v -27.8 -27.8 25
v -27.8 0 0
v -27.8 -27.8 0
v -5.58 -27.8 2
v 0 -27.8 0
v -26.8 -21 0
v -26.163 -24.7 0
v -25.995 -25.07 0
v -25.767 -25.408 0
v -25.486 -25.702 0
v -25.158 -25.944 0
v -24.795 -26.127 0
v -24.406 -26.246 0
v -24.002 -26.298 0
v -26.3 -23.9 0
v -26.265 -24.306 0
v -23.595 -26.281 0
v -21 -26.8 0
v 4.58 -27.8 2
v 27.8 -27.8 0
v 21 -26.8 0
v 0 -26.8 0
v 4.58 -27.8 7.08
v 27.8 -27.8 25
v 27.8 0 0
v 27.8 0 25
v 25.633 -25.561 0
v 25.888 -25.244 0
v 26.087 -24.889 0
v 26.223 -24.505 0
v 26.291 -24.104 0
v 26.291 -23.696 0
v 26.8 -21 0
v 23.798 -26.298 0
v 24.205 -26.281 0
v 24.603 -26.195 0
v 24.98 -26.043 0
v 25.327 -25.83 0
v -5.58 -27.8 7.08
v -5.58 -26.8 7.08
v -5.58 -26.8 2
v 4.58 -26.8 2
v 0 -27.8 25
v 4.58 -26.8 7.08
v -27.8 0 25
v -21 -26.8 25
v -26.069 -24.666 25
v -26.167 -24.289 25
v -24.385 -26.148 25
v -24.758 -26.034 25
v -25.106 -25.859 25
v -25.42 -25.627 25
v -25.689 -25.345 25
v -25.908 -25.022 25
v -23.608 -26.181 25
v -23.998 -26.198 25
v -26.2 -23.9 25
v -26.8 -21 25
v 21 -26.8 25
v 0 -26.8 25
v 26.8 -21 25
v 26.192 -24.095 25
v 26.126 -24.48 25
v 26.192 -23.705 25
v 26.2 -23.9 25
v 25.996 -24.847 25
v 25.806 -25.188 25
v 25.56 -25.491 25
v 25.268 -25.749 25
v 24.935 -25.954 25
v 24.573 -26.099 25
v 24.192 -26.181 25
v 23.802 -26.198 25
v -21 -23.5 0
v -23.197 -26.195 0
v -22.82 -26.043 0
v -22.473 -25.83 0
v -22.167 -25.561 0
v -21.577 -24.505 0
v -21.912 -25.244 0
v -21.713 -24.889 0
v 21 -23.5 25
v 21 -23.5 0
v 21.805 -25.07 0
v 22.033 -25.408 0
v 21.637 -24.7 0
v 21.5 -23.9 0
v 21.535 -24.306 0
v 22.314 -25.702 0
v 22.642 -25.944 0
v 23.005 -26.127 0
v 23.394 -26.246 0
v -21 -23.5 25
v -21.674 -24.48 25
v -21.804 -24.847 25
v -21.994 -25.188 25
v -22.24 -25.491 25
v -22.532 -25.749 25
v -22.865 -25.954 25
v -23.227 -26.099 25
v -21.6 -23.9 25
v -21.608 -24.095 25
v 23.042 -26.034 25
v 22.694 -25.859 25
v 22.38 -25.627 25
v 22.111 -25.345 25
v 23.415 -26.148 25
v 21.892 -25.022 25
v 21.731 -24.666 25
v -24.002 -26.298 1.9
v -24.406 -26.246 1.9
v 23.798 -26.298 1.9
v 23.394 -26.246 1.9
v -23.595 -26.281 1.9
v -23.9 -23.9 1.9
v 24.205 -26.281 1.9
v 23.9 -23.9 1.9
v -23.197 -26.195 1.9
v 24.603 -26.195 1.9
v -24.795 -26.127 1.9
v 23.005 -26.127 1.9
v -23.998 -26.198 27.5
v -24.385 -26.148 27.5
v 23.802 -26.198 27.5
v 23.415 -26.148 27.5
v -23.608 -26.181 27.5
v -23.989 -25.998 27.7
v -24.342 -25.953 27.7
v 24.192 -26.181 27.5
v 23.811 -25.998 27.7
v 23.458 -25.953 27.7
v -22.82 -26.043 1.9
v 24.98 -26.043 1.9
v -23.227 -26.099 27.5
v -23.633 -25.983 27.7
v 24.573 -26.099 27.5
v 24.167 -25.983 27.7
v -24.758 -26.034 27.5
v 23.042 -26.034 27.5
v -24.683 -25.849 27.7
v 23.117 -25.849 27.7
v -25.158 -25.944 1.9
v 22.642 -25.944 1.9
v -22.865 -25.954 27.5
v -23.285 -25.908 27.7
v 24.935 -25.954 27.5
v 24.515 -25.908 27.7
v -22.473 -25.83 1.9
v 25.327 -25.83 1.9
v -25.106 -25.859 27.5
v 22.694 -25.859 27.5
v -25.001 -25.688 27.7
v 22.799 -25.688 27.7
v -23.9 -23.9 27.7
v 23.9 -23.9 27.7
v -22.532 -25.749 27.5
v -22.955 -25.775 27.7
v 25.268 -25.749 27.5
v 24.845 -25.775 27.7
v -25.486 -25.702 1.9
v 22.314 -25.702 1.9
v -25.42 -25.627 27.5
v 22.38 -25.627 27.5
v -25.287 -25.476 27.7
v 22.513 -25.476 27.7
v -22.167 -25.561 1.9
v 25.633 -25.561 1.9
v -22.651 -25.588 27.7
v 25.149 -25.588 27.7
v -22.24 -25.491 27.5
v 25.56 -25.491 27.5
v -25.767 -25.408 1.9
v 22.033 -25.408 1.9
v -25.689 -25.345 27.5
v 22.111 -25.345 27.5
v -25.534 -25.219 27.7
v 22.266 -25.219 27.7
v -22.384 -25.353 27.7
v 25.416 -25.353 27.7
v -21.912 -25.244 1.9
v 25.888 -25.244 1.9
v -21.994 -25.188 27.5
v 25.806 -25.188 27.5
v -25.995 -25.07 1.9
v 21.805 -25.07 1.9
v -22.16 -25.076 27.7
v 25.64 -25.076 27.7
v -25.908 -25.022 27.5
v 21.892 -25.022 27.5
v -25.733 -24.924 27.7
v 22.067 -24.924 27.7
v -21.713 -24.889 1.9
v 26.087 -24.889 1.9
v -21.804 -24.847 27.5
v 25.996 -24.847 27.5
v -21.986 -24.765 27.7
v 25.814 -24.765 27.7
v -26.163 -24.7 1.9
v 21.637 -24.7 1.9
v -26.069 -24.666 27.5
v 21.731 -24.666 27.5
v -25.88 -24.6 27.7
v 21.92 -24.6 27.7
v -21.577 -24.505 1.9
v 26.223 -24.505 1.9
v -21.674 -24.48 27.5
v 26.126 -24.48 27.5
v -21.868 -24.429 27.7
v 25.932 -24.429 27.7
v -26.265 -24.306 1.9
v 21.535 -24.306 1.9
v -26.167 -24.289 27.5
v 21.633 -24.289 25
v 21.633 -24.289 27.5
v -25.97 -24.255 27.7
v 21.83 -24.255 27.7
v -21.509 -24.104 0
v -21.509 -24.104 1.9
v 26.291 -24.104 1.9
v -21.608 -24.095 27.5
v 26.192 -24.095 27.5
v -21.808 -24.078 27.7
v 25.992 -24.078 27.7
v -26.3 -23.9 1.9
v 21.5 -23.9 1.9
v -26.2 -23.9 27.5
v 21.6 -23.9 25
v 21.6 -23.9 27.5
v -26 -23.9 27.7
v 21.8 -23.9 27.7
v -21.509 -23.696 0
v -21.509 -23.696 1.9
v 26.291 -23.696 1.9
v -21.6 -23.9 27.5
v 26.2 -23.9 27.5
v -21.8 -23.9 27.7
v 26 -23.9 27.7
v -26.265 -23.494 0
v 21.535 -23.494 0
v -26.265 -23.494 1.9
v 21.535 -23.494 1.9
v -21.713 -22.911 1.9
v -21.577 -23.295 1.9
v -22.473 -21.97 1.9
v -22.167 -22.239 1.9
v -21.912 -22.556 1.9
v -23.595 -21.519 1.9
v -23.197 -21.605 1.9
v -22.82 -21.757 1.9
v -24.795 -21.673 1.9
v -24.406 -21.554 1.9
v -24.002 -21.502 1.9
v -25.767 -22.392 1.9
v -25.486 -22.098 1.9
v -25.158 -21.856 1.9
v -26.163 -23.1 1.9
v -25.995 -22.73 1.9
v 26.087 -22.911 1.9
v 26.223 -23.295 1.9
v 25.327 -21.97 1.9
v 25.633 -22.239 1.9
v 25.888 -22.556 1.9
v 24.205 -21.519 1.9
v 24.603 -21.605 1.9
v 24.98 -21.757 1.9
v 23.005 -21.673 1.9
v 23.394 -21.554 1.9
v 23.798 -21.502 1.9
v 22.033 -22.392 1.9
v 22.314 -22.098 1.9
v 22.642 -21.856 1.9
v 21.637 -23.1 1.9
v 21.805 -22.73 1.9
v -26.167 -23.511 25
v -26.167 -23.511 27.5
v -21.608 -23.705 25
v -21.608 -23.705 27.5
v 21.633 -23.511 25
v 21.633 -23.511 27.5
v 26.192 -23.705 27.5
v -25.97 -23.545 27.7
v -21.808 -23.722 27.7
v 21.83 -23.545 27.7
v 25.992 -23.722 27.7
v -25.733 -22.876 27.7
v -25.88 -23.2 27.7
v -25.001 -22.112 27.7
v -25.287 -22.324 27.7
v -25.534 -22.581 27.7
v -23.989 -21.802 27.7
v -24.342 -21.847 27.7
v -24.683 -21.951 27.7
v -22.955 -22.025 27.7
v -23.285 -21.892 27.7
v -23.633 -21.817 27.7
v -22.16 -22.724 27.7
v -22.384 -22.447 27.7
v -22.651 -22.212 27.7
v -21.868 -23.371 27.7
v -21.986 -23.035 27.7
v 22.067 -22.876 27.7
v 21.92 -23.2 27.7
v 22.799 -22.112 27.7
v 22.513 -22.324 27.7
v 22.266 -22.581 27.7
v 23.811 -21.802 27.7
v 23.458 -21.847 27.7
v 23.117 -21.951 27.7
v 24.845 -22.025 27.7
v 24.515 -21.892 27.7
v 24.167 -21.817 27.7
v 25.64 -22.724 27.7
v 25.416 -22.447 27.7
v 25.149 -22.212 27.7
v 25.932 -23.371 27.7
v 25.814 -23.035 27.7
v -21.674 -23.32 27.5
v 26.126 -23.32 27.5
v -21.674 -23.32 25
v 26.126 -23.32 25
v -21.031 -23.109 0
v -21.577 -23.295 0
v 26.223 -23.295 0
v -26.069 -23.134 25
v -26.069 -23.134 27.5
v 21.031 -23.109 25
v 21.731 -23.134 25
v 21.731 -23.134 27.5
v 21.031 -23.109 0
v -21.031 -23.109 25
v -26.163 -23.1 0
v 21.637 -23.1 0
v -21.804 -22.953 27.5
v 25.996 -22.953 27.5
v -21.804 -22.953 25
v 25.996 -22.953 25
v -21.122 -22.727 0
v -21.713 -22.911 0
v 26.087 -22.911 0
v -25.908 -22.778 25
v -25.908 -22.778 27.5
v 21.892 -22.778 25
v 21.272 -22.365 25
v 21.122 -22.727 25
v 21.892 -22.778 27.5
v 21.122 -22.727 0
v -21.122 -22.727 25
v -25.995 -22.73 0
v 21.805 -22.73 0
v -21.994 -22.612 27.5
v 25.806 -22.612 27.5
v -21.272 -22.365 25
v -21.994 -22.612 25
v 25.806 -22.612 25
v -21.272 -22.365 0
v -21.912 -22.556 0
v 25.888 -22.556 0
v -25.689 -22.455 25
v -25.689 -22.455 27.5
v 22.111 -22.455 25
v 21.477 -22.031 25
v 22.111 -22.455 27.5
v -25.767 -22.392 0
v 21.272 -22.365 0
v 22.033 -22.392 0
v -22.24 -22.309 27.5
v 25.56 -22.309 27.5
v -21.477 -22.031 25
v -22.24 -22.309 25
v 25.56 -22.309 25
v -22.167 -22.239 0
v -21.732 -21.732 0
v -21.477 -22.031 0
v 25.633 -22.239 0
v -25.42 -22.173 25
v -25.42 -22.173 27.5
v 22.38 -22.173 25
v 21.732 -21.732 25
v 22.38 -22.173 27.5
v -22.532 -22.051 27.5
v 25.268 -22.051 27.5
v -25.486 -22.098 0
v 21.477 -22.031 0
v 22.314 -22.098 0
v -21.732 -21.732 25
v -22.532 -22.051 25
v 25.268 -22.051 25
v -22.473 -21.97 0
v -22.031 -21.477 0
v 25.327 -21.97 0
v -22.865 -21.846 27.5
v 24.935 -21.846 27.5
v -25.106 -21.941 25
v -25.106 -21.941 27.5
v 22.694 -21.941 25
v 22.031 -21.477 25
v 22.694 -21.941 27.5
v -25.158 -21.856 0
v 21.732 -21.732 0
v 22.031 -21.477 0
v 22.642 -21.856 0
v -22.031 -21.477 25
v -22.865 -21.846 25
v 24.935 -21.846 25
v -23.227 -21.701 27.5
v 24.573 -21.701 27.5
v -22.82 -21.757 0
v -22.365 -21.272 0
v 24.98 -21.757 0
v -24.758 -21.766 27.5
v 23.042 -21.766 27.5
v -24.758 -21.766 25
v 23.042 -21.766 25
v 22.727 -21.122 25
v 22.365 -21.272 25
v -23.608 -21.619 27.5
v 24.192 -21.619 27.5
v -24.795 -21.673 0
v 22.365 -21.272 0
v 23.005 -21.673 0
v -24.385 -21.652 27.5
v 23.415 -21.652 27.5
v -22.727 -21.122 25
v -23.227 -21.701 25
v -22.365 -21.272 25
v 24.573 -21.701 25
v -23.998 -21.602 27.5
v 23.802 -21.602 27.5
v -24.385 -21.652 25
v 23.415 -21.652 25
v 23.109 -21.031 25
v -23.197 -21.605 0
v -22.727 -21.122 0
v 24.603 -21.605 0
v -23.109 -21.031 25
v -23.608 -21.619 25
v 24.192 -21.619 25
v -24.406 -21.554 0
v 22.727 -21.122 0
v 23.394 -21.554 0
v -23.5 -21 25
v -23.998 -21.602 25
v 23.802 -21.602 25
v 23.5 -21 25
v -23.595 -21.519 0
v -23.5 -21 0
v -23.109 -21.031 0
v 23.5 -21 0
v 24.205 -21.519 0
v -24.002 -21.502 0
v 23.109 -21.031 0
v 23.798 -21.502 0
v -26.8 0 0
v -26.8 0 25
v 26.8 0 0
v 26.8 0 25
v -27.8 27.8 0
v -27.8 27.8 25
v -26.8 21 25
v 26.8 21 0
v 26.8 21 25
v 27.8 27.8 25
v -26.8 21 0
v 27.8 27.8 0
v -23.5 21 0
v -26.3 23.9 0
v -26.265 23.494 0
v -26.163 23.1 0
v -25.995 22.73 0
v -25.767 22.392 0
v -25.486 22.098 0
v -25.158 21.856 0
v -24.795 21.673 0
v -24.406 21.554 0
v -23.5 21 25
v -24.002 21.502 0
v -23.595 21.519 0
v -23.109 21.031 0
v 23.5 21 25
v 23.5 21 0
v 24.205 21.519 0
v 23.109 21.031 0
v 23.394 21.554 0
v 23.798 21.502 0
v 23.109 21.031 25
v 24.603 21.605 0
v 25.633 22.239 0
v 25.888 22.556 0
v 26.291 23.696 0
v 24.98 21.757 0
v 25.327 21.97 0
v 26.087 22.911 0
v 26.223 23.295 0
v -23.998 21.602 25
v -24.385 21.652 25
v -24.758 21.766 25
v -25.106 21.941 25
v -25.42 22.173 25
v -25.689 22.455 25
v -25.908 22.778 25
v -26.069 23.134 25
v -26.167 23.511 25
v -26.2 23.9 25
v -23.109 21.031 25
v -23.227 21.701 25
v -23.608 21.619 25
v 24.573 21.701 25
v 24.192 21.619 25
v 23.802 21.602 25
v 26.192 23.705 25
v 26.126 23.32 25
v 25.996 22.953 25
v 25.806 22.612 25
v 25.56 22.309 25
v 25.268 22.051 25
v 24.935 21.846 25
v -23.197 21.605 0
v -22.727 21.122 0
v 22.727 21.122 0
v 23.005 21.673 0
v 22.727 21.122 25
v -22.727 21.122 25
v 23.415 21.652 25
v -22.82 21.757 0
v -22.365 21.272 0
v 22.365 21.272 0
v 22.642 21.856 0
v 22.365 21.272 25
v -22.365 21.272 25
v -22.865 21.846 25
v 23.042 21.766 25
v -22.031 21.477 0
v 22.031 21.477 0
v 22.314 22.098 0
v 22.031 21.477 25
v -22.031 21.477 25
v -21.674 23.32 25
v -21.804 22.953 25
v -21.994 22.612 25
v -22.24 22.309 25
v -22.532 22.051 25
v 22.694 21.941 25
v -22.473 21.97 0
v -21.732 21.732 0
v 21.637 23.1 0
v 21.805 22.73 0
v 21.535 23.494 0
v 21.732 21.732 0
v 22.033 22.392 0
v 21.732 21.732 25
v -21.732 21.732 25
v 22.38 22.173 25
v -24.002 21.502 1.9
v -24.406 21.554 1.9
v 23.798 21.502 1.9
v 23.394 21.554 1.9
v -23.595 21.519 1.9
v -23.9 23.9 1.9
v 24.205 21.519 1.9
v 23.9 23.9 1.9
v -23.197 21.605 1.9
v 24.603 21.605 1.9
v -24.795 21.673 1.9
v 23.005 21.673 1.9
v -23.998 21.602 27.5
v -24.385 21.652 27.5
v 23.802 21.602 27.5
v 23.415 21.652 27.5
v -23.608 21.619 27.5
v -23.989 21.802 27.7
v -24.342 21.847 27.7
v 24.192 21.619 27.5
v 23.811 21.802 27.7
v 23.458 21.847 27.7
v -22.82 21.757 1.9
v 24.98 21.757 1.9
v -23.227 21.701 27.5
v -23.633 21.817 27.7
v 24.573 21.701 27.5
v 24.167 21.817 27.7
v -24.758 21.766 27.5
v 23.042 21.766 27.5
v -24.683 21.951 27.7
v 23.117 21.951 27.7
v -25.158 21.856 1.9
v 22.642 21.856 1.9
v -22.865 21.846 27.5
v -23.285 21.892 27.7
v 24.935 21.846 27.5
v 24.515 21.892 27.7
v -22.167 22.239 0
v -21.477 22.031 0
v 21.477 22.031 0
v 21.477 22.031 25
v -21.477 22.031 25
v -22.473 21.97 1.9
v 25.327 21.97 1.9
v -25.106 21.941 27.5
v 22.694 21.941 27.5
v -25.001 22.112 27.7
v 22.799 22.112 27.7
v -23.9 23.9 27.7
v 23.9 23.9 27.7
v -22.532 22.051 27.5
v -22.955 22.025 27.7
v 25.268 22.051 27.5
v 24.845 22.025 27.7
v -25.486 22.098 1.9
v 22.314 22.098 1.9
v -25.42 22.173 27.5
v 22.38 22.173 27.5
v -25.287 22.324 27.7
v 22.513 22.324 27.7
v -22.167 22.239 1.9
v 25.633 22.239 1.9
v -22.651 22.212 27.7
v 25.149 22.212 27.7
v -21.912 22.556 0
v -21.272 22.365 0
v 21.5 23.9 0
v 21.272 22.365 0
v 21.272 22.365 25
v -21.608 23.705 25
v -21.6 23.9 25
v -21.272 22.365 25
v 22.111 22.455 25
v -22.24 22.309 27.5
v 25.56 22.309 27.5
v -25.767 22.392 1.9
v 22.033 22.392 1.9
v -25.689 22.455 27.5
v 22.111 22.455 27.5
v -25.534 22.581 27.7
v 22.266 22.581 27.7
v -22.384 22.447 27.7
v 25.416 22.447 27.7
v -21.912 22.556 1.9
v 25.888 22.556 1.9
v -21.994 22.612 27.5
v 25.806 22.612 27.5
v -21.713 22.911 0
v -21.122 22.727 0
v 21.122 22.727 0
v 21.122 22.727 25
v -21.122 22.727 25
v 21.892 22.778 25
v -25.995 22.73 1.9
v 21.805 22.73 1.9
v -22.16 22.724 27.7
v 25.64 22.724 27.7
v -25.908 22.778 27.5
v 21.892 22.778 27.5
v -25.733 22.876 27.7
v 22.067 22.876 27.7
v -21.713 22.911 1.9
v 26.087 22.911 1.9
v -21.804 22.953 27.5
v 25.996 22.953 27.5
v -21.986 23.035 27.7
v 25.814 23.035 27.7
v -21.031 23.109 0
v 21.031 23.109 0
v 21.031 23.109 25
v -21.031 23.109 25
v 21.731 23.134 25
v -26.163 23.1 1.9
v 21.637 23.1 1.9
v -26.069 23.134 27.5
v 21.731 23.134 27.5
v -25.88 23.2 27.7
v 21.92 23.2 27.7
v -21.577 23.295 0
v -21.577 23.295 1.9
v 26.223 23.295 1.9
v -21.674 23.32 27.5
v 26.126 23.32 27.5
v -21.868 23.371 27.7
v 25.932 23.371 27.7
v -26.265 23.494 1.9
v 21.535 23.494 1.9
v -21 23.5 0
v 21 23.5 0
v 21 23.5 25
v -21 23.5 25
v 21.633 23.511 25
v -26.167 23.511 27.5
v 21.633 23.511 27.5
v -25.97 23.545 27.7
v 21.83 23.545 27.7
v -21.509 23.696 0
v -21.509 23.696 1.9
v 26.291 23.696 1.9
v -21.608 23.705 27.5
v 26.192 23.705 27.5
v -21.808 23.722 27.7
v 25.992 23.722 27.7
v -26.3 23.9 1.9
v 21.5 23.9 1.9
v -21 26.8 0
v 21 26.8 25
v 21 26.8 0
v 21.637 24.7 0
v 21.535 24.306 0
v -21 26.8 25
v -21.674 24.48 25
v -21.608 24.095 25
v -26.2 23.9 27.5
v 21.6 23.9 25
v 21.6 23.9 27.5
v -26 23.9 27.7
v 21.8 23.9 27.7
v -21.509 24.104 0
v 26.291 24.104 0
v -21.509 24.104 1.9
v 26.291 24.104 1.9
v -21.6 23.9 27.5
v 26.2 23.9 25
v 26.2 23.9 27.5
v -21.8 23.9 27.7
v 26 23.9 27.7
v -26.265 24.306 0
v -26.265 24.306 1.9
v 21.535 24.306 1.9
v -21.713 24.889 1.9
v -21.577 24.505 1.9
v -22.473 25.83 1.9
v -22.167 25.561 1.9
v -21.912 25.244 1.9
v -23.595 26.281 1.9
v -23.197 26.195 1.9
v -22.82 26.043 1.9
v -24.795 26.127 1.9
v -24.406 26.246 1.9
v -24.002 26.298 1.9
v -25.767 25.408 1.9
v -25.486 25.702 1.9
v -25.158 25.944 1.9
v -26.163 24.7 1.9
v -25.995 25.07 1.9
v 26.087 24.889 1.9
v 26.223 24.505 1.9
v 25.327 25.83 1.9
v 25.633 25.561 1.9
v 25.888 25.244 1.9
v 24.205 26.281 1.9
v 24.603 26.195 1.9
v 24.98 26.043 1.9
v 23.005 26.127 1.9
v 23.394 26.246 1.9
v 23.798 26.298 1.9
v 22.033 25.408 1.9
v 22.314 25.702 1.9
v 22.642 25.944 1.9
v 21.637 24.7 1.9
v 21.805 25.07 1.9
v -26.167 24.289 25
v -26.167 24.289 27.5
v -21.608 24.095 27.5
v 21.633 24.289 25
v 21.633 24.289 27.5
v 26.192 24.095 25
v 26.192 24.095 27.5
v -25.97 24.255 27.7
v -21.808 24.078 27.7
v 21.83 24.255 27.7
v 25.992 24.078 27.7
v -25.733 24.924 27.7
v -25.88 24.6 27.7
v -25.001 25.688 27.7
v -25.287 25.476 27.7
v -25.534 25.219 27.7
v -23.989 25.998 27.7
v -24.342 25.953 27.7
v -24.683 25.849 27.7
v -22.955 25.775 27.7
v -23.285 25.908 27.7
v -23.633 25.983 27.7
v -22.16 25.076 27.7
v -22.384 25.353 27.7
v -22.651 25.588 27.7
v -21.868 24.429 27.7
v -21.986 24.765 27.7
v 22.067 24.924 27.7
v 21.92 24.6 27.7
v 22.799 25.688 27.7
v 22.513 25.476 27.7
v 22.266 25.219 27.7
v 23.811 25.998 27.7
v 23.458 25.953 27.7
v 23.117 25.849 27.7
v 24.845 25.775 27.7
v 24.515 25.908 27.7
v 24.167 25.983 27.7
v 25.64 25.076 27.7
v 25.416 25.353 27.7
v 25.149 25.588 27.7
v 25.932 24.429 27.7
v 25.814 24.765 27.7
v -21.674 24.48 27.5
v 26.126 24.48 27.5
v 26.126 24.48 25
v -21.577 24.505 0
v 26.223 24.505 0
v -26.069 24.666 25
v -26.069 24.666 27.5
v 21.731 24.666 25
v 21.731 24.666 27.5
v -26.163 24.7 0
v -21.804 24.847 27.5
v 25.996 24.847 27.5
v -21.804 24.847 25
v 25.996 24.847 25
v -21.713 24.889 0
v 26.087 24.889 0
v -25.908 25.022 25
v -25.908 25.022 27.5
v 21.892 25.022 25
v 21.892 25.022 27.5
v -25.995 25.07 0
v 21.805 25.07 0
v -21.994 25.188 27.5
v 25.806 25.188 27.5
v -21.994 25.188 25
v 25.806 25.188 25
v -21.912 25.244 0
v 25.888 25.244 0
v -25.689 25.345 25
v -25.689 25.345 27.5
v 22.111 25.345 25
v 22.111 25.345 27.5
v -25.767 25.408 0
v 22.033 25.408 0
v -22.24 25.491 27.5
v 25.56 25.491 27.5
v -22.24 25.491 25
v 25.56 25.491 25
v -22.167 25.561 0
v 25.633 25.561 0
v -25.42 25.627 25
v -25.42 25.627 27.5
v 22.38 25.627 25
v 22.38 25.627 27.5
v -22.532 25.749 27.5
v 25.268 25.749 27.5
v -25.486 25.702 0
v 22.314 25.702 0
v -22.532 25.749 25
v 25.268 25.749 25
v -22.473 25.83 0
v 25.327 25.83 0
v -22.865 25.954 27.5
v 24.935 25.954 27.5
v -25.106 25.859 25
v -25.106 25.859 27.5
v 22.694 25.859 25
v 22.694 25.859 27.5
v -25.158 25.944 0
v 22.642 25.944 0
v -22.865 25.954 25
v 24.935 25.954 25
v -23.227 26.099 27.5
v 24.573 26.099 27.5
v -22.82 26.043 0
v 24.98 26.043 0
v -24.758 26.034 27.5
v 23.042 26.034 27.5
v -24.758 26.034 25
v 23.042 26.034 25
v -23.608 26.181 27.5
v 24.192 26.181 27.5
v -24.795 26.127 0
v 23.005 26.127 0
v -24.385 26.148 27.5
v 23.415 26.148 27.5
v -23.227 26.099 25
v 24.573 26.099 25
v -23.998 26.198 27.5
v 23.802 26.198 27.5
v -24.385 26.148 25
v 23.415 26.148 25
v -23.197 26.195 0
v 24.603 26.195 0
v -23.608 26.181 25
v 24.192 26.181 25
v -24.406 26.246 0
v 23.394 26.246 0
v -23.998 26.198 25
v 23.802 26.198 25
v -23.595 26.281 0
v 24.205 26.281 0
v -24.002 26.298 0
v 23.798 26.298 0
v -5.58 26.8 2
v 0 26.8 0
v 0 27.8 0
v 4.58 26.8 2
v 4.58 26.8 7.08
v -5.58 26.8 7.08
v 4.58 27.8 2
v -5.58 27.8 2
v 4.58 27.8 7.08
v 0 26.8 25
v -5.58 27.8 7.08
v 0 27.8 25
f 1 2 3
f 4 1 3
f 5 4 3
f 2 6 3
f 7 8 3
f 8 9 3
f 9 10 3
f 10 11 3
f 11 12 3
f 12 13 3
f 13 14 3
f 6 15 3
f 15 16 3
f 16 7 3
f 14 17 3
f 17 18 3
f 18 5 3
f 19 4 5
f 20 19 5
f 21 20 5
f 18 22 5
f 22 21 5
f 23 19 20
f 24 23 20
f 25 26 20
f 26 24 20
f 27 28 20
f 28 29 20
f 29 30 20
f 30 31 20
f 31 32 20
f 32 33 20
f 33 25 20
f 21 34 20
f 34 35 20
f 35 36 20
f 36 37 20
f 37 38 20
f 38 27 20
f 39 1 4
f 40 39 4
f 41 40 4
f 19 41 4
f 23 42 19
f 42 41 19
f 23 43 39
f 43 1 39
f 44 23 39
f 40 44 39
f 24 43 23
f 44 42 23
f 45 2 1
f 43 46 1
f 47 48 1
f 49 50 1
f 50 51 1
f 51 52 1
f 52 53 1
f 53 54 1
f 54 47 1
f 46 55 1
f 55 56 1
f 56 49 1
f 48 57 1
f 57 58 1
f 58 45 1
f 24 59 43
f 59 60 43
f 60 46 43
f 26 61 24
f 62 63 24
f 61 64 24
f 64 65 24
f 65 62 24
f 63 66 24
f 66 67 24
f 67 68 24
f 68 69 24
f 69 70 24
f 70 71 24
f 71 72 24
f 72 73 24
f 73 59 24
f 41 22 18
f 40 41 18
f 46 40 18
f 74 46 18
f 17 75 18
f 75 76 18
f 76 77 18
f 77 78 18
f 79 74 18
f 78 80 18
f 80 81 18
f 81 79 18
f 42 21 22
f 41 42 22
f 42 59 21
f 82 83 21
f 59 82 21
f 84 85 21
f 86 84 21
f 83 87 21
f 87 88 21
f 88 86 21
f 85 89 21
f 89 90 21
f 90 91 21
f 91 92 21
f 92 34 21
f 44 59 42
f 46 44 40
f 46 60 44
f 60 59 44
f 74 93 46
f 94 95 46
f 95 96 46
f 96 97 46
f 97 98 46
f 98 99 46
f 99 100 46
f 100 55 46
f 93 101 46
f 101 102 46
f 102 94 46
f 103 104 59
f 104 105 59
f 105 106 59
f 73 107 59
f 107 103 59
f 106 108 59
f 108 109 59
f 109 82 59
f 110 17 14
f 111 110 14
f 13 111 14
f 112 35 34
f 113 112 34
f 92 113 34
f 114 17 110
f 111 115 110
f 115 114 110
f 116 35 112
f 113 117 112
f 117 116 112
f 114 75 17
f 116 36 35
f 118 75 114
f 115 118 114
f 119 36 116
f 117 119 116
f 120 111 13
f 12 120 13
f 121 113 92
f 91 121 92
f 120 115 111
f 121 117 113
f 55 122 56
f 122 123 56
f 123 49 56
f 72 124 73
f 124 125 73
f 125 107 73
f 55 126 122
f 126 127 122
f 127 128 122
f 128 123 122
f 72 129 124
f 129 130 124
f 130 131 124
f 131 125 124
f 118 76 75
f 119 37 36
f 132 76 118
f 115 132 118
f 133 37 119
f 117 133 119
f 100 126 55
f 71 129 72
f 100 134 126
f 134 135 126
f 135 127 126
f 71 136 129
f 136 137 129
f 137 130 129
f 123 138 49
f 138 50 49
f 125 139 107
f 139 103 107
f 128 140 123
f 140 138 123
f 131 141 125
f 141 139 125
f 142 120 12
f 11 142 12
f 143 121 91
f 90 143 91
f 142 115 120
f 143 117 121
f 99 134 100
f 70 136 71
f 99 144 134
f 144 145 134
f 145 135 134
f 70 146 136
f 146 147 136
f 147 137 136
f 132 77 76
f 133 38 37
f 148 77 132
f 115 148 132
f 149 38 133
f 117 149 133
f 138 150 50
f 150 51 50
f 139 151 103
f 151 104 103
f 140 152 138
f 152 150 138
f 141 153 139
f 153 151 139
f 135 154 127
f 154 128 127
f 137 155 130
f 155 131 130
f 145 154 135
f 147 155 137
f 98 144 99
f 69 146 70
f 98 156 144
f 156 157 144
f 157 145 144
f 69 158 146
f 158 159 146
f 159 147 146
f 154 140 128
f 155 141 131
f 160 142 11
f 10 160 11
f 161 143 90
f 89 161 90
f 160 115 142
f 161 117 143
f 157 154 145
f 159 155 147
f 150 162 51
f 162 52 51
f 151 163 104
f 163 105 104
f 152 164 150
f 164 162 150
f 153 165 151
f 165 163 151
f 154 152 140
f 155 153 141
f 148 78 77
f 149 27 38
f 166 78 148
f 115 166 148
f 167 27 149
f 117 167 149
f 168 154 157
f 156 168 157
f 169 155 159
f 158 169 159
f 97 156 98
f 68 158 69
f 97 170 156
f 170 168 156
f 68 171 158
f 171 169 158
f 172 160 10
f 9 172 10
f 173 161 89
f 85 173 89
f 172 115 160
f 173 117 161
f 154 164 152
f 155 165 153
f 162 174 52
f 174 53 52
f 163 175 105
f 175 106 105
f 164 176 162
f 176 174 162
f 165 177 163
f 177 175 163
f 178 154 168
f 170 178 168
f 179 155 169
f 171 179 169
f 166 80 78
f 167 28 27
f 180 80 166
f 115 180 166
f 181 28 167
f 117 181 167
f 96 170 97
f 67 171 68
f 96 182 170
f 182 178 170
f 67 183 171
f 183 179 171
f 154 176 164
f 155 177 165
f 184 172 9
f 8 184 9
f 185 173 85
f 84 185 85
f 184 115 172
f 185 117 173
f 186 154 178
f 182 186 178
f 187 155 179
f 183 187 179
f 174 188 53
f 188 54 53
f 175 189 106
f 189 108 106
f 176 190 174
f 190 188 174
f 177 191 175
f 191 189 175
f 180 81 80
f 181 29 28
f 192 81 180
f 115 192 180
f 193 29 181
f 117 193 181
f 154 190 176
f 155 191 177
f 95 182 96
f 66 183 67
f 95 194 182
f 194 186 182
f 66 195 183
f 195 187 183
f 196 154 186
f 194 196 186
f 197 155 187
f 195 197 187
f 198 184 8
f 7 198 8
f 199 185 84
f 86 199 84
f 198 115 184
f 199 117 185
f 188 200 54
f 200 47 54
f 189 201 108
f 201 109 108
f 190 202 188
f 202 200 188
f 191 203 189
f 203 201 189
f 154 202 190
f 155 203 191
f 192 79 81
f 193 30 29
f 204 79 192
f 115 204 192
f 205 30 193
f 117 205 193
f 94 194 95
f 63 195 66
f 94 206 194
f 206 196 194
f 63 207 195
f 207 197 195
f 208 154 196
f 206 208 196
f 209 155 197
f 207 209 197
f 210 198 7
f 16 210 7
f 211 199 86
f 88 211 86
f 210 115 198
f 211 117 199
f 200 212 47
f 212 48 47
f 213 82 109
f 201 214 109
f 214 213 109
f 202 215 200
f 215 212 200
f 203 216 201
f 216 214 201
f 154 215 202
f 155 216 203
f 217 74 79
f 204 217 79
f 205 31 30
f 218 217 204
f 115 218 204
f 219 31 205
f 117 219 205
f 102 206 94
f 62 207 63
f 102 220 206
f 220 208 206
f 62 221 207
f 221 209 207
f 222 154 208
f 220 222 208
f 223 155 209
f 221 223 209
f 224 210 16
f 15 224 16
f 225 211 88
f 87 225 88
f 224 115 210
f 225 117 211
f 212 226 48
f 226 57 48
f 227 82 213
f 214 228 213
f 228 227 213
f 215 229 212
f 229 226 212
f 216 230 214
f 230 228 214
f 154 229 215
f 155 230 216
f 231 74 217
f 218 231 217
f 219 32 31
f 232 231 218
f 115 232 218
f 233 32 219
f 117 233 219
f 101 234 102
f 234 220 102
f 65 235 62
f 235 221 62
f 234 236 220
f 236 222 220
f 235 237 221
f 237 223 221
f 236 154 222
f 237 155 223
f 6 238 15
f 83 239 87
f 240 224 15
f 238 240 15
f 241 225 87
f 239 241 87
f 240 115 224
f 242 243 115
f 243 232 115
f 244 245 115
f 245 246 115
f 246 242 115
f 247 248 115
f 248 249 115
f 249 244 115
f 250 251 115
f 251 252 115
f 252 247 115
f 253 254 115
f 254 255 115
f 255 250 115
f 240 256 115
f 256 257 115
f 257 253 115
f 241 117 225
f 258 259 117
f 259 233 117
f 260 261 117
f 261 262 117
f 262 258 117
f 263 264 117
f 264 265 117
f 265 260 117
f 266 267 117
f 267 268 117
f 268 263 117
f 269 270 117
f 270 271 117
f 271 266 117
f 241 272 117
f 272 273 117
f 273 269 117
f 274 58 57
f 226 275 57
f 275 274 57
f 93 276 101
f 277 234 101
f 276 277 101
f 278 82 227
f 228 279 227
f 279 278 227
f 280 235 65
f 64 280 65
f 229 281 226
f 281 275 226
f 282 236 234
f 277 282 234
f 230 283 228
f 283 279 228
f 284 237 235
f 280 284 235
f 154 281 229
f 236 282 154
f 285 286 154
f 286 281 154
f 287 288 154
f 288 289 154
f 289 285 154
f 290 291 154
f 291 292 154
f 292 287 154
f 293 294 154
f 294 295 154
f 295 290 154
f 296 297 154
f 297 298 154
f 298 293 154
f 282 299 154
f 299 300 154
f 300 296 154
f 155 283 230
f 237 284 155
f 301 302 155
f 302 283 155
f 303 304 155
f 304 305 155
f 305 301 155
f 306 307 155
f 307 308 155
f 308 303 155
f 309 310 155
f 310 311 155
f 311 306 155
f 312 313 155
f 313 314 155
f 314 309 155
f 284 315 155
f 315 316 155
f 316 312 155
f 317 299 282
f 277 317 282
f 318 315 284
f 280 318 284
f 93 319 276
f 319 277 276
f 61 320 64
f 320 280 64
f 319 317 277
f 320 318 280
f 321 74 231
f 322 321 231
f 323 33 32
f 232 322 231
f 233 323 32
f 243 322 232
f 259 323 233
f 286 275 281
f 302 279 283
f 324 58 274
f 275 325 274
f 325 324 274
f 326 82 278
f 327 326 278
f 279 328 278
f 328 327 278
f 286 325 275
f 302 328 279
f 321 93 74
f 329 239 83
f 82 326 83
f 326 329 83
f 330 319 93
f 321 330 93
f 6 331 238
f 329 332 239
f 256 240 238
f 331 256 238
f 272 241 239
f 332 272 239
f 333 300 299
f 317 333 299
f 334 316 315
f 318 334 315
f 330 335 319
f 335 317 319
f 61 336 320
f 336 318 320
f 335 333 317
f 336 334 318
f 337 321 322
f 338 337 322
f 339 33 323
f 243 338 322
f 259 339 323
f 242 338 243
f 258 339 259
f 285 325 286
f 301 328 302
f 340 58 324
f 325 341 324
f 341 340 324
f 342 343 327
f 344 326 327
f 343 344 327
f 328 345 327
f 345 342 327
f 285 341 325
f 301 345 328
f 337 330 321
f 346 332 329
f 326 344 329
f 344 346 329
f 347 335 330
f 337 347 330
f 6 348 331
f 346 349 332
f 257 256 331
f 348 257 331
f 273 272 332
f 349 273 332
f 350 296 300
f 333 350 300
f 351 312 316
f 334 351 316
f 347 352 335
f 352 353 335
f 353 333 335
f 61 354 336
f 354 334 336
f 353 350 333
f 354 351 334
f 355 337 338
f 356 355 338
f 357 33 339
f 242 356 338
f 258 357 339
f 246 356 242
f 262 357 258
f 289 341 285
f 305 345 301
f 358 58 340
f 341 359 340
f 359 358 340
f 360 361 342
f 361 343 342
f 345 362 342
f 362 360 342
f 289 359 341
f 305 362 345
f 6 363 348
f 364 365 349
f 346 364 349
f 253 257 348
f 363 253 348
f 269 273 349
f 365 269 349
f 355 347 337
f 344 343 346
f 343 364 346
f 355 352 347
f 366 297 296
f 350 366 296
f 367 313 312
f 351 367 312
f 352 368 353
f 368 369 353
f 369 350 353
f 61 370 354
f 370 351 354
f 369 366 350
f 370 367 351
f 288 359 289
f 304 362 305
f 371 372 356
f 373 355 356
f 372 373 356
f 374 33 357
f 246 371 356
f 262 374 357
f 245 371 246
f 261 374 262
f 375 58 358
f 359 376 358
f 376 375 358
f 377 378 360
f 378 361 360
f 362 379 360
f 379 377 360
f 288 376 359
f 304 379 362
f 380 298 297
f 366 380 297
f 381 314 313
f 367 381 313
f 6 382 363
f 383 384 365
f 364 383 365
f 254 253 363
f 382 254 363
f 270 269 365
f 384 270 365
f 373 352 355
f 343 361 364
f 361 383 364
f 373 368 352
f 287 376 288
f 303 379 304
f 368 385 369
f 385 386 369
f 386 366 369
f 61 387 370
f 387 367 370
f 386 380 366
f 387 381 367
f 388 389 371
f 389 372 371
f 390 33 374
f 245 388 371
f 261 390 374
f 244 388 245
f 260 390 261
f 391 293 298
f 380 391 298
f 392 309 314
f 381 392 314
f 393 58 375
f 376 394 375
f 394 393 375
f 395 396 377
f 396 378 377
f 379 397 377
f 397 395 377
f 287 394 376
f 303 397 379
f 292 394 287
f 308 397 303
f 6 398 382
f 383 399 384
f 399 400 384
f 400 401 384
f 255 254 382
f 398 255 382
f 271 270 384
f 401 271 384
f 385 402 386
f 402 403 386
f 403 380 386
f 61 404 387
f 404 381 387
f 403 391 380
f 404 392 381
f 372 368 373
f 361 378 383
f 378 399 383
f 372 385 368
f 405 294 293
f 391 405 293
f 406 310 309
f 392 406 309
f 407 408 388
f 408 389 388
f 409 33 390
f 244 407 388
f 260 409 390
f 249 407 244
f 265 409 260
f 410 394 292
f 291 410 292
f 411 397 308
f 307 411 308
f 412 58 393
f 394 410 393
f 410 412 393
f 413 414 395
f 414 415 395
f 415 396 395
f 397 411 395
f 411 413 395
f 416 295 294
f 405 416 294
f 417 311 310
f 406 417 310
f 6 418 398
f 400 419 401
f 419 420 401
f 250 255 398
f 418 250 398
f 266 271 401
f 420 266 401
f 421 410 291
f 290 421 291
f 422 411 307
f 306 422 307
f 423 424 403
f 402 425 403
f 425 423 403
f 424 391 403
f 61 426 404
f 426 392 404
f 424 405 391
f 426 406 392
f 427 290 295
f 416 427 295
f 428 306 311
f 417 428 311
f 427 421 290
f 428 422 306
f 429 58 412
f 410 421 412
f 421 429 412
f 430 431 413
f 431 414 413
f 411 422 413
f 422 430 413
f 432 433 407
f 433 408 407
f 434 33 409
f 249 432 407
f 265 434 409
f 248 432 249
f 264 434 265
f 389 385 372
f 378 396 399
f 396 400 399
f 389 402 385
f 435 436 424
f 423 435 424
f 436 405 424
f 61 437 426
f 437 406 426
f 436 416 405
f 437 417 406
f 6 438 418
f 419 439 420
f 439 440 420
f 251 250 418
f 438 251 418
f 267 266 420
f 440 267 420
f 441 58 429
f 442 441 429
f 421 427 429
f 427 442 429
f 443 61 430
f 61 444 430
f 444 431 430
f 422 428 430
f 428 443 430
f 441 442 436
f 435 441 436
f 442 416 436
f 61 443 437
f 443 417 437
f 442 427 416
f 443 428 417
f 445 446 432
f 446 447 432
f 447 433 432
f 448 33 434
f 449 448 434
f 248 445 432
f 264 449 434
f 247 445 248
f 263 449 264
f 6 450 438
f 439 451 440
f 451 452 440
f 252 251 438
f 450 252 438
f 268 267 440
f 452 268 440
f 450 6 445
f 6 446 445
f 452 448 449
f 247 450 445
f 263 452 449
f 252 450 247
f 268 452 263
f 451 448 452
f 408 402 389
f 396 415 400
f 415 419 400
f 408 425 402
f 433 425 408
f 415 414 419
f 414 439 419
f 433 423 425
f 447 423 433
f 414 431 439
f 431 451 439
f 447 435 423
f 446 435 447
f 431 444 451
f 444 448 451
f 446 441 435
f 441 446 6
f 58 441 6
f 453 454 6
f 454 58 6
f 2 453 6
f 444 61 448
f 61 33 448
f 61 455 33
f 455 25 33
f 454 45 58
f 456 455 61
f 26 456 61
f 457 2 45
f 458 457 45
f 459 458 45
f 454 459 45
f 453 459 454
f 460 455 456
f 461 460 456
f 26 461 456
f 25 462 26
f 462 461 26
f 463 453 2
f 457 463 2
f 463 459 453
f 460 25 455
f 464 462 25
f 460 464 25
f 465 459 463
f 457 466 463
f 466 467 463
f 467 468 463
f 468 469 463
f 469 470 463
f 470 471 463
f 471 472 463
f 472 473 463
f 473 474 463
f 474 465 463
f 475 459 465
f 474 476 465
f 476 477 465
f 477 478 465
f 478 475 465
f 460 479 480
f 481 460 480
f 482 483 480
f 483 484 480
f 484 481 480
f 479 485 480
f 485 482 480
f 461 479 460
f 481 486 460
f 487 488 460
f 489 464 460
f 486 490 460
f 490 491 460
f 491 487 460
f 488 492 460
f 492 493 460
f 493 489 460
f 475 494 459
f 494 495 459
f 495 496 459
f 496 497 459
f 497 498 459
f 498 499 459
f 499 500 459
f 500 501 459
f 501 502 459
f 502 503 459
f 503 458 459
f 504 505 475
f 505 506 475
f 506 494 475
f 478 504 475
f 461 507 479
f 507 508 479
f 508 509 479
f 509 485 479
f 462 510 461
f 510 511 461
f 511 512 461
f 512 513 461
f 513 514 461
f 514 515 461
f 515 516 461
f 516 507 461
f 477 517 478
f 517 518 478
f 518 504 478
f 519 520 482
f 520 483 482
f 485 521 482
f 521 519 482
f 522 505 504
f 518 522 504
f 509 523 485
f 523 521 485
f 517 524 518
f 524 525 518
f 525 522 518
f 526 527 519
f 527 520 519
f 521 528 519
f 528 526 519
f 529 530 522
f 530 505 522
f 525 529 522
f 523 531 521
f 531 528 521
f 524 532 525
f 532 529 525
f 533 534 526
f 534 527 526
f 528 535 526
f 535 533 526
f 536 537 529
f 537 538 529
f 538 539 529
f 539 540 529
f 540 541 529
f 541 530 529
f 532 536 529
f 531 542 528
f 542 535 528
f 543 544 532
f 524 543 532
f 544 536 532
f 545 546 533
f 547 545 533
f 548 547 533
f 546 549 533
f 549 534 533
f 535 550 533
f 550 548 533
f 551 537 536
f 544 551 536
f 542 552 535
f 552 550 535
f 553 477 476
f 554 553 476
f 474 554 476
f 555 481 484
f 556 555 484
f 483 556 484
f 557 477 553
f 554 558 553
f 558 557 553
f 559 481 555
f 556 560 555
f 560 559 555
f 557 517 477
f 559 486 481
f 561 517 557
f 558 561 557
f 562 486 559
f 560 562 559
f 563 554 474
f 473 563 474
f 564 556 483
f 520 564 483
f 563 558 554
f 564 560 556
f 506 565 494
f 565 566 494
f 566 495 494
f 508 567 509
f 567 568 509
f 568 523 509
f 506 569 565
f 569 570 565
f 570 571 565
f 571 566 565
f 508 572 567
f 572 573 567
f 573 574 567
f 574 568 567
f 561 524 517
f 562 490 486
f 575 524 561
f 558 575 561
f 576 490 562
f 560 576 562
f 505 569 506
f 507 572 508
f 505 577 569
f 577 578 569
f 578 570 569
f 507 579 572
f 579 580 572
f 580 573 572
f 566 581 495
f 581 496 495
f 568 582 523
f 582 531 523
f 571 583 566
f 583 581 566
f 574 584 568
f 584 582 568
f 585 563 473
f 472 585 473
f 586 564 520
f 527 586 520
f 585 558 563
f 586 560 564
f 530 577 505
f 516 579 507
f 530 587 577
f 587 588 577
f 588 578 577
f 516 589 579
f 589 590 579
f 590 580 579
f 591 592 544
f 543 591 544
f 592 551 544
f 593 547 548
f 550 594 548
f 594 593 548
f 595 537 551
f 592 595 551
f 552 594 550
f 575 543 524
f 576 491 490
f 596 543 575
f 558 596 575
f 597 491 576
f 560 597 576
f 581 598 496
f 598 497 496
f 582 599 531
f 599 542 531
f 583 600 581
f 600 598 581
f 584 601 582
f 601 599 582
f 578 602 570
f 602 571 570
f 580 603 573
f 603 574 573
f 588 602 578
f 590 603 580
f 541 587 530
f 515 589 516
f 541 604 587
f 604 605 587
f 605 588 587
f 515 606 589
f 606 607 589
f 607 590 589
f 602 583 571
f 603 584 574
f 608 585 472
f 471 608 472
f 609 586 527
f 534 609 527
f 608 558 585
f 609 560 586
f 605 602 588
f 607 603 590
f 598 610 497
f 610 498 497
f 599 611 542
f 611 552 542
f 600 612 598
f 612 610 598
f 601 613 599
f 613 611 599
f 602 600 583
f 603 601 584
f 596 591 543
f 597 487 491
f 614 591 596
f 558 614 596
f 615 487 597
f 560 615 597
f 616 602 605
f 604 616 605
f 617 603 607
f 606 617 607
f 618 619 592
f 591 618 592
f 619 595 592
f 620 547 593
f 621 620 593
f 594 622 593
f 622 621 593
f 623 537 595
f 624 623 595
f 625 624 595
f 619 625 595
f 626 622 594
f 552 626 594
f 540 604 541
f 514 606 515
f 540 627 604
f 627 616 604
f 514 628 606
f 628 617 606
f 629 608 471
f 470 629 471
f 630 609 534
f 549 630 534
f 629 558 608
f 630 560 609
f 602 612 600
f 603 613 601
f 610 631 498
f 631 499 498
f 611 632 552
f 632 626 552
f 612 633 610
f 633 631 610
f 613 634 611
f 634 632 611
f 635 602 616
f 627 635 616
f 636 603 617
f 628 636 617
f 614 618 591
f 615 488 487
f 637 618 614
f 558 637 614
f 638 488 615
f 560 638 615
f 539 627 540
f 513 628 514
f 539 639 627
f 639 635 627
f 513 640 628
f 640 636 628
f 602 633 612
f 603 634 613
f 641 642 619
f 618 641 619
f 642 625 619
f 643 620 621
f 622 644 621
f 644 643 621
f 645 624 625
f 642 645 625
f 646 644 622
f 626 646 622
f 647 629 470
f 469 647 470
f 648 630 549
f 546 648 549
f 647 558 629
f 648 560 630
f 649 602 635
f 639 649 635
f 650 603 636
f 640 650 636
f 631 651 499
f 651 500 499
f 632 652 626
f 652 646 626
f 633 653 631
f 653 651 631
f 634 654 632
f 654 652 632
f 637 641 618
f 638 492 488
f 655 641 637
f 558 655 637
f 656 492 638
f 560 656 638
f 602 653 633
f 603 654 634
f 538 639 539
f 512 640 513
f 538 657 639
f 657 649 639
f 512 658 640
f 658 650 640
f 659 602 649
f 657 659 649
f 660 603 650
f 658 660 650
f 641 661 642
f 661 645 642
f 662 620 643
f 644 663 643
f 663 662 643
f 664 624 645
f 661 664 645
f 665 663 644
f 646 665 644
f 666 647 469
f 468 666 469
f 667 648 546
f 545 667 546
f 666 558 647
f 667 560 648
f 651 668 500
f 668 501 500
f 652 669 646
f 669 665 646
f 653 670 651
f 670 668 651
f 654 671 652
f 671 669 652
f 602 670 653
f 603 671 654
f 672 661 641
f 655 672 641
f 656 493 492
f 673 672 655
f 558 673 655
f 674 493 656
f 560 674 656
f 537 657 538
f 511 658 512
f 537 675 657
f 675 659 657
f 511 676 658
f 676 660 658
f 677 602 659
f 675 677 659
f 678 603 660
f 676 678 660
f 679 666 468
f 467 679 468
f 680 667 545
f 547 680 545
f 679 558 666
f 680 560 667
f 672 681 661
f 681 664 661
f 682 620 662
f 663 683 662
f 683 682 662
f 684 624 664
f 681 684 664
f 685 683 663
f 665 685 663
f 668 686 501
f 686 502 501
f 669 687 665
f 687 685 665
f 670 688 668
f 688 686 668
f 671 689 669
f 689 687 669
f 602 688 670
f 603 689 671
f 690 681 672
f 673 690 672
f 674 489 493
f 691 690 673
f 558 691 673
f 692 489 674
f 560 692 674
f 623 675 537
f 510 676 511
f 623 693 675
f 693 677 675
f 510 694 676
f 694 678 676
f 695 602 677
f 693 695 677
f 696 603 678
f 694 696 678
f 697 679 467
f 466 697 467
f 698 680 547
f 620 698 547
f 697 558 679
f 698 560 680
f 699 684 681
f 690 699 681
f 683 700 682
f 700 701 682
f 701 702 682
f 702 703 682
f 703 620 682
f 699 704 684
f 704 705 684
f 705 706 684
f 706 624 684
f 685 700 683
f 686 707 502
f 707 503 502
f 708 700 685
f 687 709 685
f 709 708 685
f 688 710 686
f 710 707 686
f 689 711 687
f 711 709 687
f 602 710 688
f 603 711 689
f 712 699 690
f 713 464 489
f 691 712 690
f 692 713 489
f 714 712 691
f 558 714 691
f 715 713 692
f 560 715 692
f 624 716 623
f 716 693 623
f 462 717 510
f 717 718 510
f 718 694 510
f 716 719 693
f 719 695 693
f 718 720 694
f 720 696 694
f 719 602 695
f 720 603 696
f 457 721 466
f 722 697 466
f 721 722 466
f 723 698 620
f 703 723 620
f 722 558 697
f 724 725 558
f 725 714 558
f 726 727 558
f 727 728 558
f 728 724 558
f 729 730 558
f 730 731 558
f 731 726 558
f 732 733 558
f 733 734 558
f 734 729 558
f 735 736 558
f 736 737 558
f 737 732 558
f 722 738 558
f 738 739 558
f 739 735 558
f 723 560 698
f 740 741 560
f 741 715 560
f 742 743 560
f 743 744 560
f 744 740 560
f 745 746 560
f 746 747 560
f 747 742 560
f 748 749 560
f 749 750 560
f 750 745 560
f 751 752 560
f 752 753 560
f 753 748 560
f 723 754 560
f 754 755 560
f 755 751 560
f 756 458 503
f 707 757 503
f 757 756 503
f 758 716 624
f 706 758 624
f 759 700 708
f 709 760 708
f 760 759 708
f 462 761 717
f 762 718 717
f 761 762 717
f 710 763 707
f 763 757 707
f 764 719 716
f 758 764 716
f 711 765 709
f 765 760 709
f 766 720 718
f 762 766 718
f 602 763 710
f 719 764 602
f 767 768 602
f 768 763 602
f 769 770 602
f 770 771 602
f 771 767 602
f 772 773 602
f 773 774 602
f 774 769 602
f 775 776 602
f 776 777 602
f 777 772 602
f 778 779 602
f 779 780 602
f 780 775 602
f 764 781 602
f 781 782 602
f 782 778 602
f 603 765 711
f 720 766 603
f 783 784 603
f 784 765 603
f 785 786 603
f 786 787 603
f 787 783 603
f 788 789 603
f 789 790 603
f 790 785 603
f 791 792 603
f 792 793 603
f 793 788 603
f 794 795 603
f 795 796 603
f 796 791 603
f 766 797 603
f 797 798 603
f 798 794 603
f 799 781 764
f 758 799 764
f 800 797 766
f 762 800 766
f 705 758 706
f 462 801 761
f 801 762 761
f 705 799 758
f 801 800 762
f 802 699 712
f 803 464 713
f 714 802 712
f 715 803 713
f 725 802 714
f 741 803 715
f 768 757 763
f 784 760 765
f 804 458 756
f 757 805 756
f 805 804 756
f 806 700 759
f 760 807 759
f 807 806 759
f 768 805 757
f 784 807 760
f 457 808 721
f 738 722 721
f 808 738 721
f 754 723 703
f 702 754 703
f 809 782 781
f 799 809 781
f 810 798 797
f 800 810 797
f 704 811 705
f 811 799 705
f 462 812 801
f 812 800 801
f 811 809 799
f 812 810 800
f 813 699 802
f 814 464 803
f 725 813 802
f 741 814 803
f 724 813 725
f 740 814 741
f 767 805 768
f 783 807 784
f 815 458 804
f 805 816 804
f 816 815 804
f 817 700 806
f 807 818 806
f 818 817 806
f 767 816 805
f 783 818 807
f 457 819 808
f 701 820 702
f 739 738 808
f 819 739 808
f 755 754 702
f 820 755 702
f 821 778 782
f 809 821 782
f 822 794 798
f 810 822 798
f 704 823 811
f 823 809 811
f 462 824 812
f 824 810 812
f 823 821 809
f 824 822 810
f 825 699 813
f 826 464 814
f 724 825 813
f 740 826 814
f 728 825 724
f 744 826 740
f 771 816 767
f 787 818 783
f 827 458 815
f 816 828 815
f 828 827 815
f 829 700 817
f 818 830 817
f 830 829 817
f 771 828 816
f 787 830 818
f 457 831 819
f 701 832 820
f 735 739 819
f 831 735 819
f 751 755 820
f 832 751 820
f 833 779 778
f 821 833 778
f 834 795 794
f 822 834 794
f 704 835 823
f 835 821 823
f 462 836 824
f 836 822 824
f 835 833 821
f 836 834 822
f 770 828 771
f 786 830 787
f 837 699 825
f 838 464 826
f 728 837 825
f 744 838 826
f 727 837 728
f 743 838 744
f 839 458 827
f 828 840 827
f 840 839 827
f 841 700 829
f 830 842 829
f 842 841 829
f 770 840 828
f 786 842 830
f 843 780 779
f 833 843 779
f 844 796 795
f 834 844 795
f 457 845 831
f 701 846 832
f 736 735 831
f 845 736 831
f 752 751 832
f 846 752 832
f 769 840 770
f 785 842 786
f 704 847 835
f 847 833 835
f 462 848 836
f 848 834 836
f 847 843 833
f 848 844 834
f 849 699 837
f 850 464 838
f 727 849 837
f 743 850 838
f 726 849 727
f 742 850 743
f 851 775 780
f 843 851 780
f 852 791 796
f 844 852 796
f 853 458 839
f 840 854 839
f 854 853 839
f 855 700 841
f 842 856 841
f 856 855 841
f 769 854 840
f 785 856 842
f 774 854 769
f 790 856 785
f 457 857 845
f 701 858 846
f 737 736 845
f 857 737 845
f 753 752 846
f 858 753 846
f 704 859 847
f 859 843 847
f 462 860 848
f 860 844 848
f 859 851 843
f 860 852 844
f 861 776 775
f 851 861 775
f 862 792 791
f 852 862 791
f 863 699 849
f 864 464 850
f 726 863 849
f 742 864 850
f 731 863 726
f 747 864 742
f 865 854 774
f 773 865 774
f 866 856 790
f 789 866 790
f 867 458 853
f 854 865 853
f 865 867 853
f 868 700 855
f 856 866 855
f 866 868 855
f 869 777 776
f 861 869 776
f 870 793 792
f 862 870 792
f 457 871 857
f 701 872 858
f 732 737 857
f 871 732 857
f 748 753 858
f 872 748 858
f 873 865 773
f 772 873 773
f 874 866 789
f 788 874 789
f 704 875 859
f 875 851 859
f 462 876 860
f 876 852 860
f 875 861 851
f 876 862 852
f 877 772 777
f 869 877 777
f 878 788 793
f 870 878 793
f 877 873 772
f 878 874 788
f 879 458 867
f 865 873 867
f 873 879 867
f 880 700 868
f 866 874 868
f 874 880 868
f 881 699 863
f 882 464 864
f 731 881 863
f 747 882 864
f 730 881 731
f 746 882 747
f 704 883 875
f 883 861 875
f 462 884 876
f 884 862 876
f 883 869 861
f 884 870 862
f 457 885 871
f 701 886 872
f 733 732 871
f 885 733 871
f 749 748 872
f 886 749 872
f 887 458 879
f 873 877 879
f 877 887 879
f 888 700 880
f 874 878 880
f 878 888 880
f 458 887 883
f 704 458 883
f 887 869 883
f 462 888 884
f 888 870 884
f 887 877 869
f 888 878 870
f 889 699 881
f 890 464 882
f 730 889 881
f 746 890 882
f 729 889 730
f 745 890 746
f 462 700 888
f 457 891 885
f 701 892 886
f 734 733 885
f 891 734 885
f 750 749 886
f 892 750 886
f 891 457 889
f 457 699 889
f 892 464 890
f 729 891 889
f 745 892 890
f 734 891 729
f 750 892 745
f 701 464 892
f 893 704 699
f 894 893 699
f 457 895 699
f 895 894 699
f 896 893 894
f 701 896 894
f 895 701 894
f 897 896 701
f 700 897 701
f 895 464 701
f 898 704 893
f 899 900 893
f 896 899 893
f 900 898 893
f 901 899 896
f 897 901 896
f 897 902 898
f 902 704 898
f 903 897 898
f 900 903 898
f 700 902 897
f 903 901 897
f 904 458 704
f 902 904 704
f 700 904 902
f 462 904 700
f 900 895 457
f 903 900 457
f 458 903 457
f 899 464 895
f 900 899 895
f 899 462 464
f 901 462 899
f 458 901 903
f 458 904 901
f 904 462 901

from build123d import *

# Parameters (mm, degrees)
SKICA1_W                 = 5.8
SKICA1_H                 = 5.8
SKICA1_W_2               = 1
SKICA1_H_2               = 42
SKICA1_W_3               = 42
SKICA1_H_3               = 1
P_IDAT_VYSUNUT_M2_DEPTH  = 25
ZAOBLIT1_R               = 2.5
SKICA2_R                 = 2.4
ODEBRAT_VYSUNUT_M1_DEPTH = 1.9
SKICA3_R                 = 2.3
P_IDAT_VYSUNUT_M3_DEPTH  = 2.7
ZKOSEN_1_SIZE            = 0.2
SKICA4_W                 = 10.16
SKICA4_H                 = 5.08
ODEBRAT_VYSUNUT_M2_DEPTH = 68.7


with BuildPart() as part:
    # Skica1 → Přidat vysunutím2 (new body)
    with BuildSketch(Plane.XY):
        Polygon((-27.8, 27.8), (-27.8, 21), (-26.8, 21), (-26.8, 26.8), (-21, 26.8), (-21, 27.8), align=None)
        with Locations((-23.9, 23.9)):
            Rectangle(SKICA1_W, SKICA1_H)
        Polygon((26.8, 21), (27.8, 21), (27.8, 27.8), (21, 27.8), (21, 26.8), (26.8, 26.8), align=None)
        with Locations((23.9, 23.9)):
            Rectangle(SKICA1_W, SKICA1_H)
        Polygon((21, -26.8), (21, -27.8), (27.8, -27.8), (27.8, -21), (26.8, -21), (26.8, -26.8), align=None)
        with Locations((23.9, -23.9)):
            Rectangle(SKICA1_W, SKICA1_H)
        with Locations((-23.9, -23.9)):
            Rectangle(SKICA1_W, SKICA1_H)
        Polygon((-27.8, -27.8), (-21, -27.8), (-21, -26.8), (-26.8, -26.8), (-26.8, -21), (-27.8, -21), align=None)
        with Locations((-27.3, 0)):
            Rectangle(SKICA1_W_2, SKICA1_H_2)
        with Locations((0, -27.3)):
            Rectangle(SKICA1_W_3, SKICA1_H_3)
        with Locations((27.3, 0)):
            Rectangle(SKICA1_W_2, SKICA1_H_2)
        with Locations((0, 27.3)):
            Rectangle(SKICA1_W_3, SKICA1_H_3)
    extrude(amount=P_IDAT_VYSUNUT_M2_DEPTH)

    # Zaoblit1
    zaoblit1_edges = [part.edges().sort_by_distance(p)[0] for p in [
        (21, -21, 12.5),
        (21, 21, 12.5),
        (-21, 21, 12.5),
        (-21, -21, 12.5),
    ]]
    fillet(zaoblit1_edges, radius=ZAOBLIT1_R)

    # Skica2 → Odebrat vysunutím1 (cut)
    with BuildSketch(Plane(origin=(0, 0, 0), x_dir=(-1, 0, 0), z_dir=(0, 0, -1))):
        with Locations((-23.9, 23.9)):
            Circle(SKICA2_R)
        with Locations((23.9, 23.9)):
            Circle(SKICA2_R)
        with Locations((23.9, -23.9)):
            Circle(SKICA2_R)
        with Locations((-23.9, -23.9)):
            Circle(SKICA2_R)
    extrude(amount=-ODEBRAT_VYSUNUT_M1_DEPTH, mode=Mode.SUBTRACT)

    # Skica3 → Přidat vysunutím3 (add)
    with BuildSketch(Plane.XY.offset(25)):
        with Locations((-23.9, 23.9)):
            Circle(SKICA3_R)
        with Locations((23.9, 23.9)):
            Circle(SKICA3_R)
        with Locations((23.9, -23.9)):
            Circle(SKICA3_R)
        with Locations((-23.9, -23.9)):
            Circle(SKICA3_R)
    extrude(amount=P_IDAT_VYSUNUT_M3_DEPTH)

    # Zkosení1
    zkosen_1_edges = [part.edges().sort_by_distance(p)[0] for p in [
        (-26.2, 23.9, 27.7),
        (21.6, 23.9, 27.7),
        (21.6, -23.9, 27.7),
        (-26.2, -23.9, 27.7),
    ]]
    chamfer(zkosen_1_edges, length=ZKOSEN_1_SIZE)

    # Skica4 → Odebrat vysunutím2 (cut)
    with BuildSketch(Plane(origin=(0, -27.8, 0), x_dir=(-1, 0, 0), z_dir=(0, -1, 0))):
        with Locations((0.5, -4.54)):
            Rectangle(SKICA4_W, SKICA4_H)
    extrude(amount=-ODEBRAT_VYSUNUT_M2_DEPTH, mode=Mode.SUBTRACT)


solid = part.part
